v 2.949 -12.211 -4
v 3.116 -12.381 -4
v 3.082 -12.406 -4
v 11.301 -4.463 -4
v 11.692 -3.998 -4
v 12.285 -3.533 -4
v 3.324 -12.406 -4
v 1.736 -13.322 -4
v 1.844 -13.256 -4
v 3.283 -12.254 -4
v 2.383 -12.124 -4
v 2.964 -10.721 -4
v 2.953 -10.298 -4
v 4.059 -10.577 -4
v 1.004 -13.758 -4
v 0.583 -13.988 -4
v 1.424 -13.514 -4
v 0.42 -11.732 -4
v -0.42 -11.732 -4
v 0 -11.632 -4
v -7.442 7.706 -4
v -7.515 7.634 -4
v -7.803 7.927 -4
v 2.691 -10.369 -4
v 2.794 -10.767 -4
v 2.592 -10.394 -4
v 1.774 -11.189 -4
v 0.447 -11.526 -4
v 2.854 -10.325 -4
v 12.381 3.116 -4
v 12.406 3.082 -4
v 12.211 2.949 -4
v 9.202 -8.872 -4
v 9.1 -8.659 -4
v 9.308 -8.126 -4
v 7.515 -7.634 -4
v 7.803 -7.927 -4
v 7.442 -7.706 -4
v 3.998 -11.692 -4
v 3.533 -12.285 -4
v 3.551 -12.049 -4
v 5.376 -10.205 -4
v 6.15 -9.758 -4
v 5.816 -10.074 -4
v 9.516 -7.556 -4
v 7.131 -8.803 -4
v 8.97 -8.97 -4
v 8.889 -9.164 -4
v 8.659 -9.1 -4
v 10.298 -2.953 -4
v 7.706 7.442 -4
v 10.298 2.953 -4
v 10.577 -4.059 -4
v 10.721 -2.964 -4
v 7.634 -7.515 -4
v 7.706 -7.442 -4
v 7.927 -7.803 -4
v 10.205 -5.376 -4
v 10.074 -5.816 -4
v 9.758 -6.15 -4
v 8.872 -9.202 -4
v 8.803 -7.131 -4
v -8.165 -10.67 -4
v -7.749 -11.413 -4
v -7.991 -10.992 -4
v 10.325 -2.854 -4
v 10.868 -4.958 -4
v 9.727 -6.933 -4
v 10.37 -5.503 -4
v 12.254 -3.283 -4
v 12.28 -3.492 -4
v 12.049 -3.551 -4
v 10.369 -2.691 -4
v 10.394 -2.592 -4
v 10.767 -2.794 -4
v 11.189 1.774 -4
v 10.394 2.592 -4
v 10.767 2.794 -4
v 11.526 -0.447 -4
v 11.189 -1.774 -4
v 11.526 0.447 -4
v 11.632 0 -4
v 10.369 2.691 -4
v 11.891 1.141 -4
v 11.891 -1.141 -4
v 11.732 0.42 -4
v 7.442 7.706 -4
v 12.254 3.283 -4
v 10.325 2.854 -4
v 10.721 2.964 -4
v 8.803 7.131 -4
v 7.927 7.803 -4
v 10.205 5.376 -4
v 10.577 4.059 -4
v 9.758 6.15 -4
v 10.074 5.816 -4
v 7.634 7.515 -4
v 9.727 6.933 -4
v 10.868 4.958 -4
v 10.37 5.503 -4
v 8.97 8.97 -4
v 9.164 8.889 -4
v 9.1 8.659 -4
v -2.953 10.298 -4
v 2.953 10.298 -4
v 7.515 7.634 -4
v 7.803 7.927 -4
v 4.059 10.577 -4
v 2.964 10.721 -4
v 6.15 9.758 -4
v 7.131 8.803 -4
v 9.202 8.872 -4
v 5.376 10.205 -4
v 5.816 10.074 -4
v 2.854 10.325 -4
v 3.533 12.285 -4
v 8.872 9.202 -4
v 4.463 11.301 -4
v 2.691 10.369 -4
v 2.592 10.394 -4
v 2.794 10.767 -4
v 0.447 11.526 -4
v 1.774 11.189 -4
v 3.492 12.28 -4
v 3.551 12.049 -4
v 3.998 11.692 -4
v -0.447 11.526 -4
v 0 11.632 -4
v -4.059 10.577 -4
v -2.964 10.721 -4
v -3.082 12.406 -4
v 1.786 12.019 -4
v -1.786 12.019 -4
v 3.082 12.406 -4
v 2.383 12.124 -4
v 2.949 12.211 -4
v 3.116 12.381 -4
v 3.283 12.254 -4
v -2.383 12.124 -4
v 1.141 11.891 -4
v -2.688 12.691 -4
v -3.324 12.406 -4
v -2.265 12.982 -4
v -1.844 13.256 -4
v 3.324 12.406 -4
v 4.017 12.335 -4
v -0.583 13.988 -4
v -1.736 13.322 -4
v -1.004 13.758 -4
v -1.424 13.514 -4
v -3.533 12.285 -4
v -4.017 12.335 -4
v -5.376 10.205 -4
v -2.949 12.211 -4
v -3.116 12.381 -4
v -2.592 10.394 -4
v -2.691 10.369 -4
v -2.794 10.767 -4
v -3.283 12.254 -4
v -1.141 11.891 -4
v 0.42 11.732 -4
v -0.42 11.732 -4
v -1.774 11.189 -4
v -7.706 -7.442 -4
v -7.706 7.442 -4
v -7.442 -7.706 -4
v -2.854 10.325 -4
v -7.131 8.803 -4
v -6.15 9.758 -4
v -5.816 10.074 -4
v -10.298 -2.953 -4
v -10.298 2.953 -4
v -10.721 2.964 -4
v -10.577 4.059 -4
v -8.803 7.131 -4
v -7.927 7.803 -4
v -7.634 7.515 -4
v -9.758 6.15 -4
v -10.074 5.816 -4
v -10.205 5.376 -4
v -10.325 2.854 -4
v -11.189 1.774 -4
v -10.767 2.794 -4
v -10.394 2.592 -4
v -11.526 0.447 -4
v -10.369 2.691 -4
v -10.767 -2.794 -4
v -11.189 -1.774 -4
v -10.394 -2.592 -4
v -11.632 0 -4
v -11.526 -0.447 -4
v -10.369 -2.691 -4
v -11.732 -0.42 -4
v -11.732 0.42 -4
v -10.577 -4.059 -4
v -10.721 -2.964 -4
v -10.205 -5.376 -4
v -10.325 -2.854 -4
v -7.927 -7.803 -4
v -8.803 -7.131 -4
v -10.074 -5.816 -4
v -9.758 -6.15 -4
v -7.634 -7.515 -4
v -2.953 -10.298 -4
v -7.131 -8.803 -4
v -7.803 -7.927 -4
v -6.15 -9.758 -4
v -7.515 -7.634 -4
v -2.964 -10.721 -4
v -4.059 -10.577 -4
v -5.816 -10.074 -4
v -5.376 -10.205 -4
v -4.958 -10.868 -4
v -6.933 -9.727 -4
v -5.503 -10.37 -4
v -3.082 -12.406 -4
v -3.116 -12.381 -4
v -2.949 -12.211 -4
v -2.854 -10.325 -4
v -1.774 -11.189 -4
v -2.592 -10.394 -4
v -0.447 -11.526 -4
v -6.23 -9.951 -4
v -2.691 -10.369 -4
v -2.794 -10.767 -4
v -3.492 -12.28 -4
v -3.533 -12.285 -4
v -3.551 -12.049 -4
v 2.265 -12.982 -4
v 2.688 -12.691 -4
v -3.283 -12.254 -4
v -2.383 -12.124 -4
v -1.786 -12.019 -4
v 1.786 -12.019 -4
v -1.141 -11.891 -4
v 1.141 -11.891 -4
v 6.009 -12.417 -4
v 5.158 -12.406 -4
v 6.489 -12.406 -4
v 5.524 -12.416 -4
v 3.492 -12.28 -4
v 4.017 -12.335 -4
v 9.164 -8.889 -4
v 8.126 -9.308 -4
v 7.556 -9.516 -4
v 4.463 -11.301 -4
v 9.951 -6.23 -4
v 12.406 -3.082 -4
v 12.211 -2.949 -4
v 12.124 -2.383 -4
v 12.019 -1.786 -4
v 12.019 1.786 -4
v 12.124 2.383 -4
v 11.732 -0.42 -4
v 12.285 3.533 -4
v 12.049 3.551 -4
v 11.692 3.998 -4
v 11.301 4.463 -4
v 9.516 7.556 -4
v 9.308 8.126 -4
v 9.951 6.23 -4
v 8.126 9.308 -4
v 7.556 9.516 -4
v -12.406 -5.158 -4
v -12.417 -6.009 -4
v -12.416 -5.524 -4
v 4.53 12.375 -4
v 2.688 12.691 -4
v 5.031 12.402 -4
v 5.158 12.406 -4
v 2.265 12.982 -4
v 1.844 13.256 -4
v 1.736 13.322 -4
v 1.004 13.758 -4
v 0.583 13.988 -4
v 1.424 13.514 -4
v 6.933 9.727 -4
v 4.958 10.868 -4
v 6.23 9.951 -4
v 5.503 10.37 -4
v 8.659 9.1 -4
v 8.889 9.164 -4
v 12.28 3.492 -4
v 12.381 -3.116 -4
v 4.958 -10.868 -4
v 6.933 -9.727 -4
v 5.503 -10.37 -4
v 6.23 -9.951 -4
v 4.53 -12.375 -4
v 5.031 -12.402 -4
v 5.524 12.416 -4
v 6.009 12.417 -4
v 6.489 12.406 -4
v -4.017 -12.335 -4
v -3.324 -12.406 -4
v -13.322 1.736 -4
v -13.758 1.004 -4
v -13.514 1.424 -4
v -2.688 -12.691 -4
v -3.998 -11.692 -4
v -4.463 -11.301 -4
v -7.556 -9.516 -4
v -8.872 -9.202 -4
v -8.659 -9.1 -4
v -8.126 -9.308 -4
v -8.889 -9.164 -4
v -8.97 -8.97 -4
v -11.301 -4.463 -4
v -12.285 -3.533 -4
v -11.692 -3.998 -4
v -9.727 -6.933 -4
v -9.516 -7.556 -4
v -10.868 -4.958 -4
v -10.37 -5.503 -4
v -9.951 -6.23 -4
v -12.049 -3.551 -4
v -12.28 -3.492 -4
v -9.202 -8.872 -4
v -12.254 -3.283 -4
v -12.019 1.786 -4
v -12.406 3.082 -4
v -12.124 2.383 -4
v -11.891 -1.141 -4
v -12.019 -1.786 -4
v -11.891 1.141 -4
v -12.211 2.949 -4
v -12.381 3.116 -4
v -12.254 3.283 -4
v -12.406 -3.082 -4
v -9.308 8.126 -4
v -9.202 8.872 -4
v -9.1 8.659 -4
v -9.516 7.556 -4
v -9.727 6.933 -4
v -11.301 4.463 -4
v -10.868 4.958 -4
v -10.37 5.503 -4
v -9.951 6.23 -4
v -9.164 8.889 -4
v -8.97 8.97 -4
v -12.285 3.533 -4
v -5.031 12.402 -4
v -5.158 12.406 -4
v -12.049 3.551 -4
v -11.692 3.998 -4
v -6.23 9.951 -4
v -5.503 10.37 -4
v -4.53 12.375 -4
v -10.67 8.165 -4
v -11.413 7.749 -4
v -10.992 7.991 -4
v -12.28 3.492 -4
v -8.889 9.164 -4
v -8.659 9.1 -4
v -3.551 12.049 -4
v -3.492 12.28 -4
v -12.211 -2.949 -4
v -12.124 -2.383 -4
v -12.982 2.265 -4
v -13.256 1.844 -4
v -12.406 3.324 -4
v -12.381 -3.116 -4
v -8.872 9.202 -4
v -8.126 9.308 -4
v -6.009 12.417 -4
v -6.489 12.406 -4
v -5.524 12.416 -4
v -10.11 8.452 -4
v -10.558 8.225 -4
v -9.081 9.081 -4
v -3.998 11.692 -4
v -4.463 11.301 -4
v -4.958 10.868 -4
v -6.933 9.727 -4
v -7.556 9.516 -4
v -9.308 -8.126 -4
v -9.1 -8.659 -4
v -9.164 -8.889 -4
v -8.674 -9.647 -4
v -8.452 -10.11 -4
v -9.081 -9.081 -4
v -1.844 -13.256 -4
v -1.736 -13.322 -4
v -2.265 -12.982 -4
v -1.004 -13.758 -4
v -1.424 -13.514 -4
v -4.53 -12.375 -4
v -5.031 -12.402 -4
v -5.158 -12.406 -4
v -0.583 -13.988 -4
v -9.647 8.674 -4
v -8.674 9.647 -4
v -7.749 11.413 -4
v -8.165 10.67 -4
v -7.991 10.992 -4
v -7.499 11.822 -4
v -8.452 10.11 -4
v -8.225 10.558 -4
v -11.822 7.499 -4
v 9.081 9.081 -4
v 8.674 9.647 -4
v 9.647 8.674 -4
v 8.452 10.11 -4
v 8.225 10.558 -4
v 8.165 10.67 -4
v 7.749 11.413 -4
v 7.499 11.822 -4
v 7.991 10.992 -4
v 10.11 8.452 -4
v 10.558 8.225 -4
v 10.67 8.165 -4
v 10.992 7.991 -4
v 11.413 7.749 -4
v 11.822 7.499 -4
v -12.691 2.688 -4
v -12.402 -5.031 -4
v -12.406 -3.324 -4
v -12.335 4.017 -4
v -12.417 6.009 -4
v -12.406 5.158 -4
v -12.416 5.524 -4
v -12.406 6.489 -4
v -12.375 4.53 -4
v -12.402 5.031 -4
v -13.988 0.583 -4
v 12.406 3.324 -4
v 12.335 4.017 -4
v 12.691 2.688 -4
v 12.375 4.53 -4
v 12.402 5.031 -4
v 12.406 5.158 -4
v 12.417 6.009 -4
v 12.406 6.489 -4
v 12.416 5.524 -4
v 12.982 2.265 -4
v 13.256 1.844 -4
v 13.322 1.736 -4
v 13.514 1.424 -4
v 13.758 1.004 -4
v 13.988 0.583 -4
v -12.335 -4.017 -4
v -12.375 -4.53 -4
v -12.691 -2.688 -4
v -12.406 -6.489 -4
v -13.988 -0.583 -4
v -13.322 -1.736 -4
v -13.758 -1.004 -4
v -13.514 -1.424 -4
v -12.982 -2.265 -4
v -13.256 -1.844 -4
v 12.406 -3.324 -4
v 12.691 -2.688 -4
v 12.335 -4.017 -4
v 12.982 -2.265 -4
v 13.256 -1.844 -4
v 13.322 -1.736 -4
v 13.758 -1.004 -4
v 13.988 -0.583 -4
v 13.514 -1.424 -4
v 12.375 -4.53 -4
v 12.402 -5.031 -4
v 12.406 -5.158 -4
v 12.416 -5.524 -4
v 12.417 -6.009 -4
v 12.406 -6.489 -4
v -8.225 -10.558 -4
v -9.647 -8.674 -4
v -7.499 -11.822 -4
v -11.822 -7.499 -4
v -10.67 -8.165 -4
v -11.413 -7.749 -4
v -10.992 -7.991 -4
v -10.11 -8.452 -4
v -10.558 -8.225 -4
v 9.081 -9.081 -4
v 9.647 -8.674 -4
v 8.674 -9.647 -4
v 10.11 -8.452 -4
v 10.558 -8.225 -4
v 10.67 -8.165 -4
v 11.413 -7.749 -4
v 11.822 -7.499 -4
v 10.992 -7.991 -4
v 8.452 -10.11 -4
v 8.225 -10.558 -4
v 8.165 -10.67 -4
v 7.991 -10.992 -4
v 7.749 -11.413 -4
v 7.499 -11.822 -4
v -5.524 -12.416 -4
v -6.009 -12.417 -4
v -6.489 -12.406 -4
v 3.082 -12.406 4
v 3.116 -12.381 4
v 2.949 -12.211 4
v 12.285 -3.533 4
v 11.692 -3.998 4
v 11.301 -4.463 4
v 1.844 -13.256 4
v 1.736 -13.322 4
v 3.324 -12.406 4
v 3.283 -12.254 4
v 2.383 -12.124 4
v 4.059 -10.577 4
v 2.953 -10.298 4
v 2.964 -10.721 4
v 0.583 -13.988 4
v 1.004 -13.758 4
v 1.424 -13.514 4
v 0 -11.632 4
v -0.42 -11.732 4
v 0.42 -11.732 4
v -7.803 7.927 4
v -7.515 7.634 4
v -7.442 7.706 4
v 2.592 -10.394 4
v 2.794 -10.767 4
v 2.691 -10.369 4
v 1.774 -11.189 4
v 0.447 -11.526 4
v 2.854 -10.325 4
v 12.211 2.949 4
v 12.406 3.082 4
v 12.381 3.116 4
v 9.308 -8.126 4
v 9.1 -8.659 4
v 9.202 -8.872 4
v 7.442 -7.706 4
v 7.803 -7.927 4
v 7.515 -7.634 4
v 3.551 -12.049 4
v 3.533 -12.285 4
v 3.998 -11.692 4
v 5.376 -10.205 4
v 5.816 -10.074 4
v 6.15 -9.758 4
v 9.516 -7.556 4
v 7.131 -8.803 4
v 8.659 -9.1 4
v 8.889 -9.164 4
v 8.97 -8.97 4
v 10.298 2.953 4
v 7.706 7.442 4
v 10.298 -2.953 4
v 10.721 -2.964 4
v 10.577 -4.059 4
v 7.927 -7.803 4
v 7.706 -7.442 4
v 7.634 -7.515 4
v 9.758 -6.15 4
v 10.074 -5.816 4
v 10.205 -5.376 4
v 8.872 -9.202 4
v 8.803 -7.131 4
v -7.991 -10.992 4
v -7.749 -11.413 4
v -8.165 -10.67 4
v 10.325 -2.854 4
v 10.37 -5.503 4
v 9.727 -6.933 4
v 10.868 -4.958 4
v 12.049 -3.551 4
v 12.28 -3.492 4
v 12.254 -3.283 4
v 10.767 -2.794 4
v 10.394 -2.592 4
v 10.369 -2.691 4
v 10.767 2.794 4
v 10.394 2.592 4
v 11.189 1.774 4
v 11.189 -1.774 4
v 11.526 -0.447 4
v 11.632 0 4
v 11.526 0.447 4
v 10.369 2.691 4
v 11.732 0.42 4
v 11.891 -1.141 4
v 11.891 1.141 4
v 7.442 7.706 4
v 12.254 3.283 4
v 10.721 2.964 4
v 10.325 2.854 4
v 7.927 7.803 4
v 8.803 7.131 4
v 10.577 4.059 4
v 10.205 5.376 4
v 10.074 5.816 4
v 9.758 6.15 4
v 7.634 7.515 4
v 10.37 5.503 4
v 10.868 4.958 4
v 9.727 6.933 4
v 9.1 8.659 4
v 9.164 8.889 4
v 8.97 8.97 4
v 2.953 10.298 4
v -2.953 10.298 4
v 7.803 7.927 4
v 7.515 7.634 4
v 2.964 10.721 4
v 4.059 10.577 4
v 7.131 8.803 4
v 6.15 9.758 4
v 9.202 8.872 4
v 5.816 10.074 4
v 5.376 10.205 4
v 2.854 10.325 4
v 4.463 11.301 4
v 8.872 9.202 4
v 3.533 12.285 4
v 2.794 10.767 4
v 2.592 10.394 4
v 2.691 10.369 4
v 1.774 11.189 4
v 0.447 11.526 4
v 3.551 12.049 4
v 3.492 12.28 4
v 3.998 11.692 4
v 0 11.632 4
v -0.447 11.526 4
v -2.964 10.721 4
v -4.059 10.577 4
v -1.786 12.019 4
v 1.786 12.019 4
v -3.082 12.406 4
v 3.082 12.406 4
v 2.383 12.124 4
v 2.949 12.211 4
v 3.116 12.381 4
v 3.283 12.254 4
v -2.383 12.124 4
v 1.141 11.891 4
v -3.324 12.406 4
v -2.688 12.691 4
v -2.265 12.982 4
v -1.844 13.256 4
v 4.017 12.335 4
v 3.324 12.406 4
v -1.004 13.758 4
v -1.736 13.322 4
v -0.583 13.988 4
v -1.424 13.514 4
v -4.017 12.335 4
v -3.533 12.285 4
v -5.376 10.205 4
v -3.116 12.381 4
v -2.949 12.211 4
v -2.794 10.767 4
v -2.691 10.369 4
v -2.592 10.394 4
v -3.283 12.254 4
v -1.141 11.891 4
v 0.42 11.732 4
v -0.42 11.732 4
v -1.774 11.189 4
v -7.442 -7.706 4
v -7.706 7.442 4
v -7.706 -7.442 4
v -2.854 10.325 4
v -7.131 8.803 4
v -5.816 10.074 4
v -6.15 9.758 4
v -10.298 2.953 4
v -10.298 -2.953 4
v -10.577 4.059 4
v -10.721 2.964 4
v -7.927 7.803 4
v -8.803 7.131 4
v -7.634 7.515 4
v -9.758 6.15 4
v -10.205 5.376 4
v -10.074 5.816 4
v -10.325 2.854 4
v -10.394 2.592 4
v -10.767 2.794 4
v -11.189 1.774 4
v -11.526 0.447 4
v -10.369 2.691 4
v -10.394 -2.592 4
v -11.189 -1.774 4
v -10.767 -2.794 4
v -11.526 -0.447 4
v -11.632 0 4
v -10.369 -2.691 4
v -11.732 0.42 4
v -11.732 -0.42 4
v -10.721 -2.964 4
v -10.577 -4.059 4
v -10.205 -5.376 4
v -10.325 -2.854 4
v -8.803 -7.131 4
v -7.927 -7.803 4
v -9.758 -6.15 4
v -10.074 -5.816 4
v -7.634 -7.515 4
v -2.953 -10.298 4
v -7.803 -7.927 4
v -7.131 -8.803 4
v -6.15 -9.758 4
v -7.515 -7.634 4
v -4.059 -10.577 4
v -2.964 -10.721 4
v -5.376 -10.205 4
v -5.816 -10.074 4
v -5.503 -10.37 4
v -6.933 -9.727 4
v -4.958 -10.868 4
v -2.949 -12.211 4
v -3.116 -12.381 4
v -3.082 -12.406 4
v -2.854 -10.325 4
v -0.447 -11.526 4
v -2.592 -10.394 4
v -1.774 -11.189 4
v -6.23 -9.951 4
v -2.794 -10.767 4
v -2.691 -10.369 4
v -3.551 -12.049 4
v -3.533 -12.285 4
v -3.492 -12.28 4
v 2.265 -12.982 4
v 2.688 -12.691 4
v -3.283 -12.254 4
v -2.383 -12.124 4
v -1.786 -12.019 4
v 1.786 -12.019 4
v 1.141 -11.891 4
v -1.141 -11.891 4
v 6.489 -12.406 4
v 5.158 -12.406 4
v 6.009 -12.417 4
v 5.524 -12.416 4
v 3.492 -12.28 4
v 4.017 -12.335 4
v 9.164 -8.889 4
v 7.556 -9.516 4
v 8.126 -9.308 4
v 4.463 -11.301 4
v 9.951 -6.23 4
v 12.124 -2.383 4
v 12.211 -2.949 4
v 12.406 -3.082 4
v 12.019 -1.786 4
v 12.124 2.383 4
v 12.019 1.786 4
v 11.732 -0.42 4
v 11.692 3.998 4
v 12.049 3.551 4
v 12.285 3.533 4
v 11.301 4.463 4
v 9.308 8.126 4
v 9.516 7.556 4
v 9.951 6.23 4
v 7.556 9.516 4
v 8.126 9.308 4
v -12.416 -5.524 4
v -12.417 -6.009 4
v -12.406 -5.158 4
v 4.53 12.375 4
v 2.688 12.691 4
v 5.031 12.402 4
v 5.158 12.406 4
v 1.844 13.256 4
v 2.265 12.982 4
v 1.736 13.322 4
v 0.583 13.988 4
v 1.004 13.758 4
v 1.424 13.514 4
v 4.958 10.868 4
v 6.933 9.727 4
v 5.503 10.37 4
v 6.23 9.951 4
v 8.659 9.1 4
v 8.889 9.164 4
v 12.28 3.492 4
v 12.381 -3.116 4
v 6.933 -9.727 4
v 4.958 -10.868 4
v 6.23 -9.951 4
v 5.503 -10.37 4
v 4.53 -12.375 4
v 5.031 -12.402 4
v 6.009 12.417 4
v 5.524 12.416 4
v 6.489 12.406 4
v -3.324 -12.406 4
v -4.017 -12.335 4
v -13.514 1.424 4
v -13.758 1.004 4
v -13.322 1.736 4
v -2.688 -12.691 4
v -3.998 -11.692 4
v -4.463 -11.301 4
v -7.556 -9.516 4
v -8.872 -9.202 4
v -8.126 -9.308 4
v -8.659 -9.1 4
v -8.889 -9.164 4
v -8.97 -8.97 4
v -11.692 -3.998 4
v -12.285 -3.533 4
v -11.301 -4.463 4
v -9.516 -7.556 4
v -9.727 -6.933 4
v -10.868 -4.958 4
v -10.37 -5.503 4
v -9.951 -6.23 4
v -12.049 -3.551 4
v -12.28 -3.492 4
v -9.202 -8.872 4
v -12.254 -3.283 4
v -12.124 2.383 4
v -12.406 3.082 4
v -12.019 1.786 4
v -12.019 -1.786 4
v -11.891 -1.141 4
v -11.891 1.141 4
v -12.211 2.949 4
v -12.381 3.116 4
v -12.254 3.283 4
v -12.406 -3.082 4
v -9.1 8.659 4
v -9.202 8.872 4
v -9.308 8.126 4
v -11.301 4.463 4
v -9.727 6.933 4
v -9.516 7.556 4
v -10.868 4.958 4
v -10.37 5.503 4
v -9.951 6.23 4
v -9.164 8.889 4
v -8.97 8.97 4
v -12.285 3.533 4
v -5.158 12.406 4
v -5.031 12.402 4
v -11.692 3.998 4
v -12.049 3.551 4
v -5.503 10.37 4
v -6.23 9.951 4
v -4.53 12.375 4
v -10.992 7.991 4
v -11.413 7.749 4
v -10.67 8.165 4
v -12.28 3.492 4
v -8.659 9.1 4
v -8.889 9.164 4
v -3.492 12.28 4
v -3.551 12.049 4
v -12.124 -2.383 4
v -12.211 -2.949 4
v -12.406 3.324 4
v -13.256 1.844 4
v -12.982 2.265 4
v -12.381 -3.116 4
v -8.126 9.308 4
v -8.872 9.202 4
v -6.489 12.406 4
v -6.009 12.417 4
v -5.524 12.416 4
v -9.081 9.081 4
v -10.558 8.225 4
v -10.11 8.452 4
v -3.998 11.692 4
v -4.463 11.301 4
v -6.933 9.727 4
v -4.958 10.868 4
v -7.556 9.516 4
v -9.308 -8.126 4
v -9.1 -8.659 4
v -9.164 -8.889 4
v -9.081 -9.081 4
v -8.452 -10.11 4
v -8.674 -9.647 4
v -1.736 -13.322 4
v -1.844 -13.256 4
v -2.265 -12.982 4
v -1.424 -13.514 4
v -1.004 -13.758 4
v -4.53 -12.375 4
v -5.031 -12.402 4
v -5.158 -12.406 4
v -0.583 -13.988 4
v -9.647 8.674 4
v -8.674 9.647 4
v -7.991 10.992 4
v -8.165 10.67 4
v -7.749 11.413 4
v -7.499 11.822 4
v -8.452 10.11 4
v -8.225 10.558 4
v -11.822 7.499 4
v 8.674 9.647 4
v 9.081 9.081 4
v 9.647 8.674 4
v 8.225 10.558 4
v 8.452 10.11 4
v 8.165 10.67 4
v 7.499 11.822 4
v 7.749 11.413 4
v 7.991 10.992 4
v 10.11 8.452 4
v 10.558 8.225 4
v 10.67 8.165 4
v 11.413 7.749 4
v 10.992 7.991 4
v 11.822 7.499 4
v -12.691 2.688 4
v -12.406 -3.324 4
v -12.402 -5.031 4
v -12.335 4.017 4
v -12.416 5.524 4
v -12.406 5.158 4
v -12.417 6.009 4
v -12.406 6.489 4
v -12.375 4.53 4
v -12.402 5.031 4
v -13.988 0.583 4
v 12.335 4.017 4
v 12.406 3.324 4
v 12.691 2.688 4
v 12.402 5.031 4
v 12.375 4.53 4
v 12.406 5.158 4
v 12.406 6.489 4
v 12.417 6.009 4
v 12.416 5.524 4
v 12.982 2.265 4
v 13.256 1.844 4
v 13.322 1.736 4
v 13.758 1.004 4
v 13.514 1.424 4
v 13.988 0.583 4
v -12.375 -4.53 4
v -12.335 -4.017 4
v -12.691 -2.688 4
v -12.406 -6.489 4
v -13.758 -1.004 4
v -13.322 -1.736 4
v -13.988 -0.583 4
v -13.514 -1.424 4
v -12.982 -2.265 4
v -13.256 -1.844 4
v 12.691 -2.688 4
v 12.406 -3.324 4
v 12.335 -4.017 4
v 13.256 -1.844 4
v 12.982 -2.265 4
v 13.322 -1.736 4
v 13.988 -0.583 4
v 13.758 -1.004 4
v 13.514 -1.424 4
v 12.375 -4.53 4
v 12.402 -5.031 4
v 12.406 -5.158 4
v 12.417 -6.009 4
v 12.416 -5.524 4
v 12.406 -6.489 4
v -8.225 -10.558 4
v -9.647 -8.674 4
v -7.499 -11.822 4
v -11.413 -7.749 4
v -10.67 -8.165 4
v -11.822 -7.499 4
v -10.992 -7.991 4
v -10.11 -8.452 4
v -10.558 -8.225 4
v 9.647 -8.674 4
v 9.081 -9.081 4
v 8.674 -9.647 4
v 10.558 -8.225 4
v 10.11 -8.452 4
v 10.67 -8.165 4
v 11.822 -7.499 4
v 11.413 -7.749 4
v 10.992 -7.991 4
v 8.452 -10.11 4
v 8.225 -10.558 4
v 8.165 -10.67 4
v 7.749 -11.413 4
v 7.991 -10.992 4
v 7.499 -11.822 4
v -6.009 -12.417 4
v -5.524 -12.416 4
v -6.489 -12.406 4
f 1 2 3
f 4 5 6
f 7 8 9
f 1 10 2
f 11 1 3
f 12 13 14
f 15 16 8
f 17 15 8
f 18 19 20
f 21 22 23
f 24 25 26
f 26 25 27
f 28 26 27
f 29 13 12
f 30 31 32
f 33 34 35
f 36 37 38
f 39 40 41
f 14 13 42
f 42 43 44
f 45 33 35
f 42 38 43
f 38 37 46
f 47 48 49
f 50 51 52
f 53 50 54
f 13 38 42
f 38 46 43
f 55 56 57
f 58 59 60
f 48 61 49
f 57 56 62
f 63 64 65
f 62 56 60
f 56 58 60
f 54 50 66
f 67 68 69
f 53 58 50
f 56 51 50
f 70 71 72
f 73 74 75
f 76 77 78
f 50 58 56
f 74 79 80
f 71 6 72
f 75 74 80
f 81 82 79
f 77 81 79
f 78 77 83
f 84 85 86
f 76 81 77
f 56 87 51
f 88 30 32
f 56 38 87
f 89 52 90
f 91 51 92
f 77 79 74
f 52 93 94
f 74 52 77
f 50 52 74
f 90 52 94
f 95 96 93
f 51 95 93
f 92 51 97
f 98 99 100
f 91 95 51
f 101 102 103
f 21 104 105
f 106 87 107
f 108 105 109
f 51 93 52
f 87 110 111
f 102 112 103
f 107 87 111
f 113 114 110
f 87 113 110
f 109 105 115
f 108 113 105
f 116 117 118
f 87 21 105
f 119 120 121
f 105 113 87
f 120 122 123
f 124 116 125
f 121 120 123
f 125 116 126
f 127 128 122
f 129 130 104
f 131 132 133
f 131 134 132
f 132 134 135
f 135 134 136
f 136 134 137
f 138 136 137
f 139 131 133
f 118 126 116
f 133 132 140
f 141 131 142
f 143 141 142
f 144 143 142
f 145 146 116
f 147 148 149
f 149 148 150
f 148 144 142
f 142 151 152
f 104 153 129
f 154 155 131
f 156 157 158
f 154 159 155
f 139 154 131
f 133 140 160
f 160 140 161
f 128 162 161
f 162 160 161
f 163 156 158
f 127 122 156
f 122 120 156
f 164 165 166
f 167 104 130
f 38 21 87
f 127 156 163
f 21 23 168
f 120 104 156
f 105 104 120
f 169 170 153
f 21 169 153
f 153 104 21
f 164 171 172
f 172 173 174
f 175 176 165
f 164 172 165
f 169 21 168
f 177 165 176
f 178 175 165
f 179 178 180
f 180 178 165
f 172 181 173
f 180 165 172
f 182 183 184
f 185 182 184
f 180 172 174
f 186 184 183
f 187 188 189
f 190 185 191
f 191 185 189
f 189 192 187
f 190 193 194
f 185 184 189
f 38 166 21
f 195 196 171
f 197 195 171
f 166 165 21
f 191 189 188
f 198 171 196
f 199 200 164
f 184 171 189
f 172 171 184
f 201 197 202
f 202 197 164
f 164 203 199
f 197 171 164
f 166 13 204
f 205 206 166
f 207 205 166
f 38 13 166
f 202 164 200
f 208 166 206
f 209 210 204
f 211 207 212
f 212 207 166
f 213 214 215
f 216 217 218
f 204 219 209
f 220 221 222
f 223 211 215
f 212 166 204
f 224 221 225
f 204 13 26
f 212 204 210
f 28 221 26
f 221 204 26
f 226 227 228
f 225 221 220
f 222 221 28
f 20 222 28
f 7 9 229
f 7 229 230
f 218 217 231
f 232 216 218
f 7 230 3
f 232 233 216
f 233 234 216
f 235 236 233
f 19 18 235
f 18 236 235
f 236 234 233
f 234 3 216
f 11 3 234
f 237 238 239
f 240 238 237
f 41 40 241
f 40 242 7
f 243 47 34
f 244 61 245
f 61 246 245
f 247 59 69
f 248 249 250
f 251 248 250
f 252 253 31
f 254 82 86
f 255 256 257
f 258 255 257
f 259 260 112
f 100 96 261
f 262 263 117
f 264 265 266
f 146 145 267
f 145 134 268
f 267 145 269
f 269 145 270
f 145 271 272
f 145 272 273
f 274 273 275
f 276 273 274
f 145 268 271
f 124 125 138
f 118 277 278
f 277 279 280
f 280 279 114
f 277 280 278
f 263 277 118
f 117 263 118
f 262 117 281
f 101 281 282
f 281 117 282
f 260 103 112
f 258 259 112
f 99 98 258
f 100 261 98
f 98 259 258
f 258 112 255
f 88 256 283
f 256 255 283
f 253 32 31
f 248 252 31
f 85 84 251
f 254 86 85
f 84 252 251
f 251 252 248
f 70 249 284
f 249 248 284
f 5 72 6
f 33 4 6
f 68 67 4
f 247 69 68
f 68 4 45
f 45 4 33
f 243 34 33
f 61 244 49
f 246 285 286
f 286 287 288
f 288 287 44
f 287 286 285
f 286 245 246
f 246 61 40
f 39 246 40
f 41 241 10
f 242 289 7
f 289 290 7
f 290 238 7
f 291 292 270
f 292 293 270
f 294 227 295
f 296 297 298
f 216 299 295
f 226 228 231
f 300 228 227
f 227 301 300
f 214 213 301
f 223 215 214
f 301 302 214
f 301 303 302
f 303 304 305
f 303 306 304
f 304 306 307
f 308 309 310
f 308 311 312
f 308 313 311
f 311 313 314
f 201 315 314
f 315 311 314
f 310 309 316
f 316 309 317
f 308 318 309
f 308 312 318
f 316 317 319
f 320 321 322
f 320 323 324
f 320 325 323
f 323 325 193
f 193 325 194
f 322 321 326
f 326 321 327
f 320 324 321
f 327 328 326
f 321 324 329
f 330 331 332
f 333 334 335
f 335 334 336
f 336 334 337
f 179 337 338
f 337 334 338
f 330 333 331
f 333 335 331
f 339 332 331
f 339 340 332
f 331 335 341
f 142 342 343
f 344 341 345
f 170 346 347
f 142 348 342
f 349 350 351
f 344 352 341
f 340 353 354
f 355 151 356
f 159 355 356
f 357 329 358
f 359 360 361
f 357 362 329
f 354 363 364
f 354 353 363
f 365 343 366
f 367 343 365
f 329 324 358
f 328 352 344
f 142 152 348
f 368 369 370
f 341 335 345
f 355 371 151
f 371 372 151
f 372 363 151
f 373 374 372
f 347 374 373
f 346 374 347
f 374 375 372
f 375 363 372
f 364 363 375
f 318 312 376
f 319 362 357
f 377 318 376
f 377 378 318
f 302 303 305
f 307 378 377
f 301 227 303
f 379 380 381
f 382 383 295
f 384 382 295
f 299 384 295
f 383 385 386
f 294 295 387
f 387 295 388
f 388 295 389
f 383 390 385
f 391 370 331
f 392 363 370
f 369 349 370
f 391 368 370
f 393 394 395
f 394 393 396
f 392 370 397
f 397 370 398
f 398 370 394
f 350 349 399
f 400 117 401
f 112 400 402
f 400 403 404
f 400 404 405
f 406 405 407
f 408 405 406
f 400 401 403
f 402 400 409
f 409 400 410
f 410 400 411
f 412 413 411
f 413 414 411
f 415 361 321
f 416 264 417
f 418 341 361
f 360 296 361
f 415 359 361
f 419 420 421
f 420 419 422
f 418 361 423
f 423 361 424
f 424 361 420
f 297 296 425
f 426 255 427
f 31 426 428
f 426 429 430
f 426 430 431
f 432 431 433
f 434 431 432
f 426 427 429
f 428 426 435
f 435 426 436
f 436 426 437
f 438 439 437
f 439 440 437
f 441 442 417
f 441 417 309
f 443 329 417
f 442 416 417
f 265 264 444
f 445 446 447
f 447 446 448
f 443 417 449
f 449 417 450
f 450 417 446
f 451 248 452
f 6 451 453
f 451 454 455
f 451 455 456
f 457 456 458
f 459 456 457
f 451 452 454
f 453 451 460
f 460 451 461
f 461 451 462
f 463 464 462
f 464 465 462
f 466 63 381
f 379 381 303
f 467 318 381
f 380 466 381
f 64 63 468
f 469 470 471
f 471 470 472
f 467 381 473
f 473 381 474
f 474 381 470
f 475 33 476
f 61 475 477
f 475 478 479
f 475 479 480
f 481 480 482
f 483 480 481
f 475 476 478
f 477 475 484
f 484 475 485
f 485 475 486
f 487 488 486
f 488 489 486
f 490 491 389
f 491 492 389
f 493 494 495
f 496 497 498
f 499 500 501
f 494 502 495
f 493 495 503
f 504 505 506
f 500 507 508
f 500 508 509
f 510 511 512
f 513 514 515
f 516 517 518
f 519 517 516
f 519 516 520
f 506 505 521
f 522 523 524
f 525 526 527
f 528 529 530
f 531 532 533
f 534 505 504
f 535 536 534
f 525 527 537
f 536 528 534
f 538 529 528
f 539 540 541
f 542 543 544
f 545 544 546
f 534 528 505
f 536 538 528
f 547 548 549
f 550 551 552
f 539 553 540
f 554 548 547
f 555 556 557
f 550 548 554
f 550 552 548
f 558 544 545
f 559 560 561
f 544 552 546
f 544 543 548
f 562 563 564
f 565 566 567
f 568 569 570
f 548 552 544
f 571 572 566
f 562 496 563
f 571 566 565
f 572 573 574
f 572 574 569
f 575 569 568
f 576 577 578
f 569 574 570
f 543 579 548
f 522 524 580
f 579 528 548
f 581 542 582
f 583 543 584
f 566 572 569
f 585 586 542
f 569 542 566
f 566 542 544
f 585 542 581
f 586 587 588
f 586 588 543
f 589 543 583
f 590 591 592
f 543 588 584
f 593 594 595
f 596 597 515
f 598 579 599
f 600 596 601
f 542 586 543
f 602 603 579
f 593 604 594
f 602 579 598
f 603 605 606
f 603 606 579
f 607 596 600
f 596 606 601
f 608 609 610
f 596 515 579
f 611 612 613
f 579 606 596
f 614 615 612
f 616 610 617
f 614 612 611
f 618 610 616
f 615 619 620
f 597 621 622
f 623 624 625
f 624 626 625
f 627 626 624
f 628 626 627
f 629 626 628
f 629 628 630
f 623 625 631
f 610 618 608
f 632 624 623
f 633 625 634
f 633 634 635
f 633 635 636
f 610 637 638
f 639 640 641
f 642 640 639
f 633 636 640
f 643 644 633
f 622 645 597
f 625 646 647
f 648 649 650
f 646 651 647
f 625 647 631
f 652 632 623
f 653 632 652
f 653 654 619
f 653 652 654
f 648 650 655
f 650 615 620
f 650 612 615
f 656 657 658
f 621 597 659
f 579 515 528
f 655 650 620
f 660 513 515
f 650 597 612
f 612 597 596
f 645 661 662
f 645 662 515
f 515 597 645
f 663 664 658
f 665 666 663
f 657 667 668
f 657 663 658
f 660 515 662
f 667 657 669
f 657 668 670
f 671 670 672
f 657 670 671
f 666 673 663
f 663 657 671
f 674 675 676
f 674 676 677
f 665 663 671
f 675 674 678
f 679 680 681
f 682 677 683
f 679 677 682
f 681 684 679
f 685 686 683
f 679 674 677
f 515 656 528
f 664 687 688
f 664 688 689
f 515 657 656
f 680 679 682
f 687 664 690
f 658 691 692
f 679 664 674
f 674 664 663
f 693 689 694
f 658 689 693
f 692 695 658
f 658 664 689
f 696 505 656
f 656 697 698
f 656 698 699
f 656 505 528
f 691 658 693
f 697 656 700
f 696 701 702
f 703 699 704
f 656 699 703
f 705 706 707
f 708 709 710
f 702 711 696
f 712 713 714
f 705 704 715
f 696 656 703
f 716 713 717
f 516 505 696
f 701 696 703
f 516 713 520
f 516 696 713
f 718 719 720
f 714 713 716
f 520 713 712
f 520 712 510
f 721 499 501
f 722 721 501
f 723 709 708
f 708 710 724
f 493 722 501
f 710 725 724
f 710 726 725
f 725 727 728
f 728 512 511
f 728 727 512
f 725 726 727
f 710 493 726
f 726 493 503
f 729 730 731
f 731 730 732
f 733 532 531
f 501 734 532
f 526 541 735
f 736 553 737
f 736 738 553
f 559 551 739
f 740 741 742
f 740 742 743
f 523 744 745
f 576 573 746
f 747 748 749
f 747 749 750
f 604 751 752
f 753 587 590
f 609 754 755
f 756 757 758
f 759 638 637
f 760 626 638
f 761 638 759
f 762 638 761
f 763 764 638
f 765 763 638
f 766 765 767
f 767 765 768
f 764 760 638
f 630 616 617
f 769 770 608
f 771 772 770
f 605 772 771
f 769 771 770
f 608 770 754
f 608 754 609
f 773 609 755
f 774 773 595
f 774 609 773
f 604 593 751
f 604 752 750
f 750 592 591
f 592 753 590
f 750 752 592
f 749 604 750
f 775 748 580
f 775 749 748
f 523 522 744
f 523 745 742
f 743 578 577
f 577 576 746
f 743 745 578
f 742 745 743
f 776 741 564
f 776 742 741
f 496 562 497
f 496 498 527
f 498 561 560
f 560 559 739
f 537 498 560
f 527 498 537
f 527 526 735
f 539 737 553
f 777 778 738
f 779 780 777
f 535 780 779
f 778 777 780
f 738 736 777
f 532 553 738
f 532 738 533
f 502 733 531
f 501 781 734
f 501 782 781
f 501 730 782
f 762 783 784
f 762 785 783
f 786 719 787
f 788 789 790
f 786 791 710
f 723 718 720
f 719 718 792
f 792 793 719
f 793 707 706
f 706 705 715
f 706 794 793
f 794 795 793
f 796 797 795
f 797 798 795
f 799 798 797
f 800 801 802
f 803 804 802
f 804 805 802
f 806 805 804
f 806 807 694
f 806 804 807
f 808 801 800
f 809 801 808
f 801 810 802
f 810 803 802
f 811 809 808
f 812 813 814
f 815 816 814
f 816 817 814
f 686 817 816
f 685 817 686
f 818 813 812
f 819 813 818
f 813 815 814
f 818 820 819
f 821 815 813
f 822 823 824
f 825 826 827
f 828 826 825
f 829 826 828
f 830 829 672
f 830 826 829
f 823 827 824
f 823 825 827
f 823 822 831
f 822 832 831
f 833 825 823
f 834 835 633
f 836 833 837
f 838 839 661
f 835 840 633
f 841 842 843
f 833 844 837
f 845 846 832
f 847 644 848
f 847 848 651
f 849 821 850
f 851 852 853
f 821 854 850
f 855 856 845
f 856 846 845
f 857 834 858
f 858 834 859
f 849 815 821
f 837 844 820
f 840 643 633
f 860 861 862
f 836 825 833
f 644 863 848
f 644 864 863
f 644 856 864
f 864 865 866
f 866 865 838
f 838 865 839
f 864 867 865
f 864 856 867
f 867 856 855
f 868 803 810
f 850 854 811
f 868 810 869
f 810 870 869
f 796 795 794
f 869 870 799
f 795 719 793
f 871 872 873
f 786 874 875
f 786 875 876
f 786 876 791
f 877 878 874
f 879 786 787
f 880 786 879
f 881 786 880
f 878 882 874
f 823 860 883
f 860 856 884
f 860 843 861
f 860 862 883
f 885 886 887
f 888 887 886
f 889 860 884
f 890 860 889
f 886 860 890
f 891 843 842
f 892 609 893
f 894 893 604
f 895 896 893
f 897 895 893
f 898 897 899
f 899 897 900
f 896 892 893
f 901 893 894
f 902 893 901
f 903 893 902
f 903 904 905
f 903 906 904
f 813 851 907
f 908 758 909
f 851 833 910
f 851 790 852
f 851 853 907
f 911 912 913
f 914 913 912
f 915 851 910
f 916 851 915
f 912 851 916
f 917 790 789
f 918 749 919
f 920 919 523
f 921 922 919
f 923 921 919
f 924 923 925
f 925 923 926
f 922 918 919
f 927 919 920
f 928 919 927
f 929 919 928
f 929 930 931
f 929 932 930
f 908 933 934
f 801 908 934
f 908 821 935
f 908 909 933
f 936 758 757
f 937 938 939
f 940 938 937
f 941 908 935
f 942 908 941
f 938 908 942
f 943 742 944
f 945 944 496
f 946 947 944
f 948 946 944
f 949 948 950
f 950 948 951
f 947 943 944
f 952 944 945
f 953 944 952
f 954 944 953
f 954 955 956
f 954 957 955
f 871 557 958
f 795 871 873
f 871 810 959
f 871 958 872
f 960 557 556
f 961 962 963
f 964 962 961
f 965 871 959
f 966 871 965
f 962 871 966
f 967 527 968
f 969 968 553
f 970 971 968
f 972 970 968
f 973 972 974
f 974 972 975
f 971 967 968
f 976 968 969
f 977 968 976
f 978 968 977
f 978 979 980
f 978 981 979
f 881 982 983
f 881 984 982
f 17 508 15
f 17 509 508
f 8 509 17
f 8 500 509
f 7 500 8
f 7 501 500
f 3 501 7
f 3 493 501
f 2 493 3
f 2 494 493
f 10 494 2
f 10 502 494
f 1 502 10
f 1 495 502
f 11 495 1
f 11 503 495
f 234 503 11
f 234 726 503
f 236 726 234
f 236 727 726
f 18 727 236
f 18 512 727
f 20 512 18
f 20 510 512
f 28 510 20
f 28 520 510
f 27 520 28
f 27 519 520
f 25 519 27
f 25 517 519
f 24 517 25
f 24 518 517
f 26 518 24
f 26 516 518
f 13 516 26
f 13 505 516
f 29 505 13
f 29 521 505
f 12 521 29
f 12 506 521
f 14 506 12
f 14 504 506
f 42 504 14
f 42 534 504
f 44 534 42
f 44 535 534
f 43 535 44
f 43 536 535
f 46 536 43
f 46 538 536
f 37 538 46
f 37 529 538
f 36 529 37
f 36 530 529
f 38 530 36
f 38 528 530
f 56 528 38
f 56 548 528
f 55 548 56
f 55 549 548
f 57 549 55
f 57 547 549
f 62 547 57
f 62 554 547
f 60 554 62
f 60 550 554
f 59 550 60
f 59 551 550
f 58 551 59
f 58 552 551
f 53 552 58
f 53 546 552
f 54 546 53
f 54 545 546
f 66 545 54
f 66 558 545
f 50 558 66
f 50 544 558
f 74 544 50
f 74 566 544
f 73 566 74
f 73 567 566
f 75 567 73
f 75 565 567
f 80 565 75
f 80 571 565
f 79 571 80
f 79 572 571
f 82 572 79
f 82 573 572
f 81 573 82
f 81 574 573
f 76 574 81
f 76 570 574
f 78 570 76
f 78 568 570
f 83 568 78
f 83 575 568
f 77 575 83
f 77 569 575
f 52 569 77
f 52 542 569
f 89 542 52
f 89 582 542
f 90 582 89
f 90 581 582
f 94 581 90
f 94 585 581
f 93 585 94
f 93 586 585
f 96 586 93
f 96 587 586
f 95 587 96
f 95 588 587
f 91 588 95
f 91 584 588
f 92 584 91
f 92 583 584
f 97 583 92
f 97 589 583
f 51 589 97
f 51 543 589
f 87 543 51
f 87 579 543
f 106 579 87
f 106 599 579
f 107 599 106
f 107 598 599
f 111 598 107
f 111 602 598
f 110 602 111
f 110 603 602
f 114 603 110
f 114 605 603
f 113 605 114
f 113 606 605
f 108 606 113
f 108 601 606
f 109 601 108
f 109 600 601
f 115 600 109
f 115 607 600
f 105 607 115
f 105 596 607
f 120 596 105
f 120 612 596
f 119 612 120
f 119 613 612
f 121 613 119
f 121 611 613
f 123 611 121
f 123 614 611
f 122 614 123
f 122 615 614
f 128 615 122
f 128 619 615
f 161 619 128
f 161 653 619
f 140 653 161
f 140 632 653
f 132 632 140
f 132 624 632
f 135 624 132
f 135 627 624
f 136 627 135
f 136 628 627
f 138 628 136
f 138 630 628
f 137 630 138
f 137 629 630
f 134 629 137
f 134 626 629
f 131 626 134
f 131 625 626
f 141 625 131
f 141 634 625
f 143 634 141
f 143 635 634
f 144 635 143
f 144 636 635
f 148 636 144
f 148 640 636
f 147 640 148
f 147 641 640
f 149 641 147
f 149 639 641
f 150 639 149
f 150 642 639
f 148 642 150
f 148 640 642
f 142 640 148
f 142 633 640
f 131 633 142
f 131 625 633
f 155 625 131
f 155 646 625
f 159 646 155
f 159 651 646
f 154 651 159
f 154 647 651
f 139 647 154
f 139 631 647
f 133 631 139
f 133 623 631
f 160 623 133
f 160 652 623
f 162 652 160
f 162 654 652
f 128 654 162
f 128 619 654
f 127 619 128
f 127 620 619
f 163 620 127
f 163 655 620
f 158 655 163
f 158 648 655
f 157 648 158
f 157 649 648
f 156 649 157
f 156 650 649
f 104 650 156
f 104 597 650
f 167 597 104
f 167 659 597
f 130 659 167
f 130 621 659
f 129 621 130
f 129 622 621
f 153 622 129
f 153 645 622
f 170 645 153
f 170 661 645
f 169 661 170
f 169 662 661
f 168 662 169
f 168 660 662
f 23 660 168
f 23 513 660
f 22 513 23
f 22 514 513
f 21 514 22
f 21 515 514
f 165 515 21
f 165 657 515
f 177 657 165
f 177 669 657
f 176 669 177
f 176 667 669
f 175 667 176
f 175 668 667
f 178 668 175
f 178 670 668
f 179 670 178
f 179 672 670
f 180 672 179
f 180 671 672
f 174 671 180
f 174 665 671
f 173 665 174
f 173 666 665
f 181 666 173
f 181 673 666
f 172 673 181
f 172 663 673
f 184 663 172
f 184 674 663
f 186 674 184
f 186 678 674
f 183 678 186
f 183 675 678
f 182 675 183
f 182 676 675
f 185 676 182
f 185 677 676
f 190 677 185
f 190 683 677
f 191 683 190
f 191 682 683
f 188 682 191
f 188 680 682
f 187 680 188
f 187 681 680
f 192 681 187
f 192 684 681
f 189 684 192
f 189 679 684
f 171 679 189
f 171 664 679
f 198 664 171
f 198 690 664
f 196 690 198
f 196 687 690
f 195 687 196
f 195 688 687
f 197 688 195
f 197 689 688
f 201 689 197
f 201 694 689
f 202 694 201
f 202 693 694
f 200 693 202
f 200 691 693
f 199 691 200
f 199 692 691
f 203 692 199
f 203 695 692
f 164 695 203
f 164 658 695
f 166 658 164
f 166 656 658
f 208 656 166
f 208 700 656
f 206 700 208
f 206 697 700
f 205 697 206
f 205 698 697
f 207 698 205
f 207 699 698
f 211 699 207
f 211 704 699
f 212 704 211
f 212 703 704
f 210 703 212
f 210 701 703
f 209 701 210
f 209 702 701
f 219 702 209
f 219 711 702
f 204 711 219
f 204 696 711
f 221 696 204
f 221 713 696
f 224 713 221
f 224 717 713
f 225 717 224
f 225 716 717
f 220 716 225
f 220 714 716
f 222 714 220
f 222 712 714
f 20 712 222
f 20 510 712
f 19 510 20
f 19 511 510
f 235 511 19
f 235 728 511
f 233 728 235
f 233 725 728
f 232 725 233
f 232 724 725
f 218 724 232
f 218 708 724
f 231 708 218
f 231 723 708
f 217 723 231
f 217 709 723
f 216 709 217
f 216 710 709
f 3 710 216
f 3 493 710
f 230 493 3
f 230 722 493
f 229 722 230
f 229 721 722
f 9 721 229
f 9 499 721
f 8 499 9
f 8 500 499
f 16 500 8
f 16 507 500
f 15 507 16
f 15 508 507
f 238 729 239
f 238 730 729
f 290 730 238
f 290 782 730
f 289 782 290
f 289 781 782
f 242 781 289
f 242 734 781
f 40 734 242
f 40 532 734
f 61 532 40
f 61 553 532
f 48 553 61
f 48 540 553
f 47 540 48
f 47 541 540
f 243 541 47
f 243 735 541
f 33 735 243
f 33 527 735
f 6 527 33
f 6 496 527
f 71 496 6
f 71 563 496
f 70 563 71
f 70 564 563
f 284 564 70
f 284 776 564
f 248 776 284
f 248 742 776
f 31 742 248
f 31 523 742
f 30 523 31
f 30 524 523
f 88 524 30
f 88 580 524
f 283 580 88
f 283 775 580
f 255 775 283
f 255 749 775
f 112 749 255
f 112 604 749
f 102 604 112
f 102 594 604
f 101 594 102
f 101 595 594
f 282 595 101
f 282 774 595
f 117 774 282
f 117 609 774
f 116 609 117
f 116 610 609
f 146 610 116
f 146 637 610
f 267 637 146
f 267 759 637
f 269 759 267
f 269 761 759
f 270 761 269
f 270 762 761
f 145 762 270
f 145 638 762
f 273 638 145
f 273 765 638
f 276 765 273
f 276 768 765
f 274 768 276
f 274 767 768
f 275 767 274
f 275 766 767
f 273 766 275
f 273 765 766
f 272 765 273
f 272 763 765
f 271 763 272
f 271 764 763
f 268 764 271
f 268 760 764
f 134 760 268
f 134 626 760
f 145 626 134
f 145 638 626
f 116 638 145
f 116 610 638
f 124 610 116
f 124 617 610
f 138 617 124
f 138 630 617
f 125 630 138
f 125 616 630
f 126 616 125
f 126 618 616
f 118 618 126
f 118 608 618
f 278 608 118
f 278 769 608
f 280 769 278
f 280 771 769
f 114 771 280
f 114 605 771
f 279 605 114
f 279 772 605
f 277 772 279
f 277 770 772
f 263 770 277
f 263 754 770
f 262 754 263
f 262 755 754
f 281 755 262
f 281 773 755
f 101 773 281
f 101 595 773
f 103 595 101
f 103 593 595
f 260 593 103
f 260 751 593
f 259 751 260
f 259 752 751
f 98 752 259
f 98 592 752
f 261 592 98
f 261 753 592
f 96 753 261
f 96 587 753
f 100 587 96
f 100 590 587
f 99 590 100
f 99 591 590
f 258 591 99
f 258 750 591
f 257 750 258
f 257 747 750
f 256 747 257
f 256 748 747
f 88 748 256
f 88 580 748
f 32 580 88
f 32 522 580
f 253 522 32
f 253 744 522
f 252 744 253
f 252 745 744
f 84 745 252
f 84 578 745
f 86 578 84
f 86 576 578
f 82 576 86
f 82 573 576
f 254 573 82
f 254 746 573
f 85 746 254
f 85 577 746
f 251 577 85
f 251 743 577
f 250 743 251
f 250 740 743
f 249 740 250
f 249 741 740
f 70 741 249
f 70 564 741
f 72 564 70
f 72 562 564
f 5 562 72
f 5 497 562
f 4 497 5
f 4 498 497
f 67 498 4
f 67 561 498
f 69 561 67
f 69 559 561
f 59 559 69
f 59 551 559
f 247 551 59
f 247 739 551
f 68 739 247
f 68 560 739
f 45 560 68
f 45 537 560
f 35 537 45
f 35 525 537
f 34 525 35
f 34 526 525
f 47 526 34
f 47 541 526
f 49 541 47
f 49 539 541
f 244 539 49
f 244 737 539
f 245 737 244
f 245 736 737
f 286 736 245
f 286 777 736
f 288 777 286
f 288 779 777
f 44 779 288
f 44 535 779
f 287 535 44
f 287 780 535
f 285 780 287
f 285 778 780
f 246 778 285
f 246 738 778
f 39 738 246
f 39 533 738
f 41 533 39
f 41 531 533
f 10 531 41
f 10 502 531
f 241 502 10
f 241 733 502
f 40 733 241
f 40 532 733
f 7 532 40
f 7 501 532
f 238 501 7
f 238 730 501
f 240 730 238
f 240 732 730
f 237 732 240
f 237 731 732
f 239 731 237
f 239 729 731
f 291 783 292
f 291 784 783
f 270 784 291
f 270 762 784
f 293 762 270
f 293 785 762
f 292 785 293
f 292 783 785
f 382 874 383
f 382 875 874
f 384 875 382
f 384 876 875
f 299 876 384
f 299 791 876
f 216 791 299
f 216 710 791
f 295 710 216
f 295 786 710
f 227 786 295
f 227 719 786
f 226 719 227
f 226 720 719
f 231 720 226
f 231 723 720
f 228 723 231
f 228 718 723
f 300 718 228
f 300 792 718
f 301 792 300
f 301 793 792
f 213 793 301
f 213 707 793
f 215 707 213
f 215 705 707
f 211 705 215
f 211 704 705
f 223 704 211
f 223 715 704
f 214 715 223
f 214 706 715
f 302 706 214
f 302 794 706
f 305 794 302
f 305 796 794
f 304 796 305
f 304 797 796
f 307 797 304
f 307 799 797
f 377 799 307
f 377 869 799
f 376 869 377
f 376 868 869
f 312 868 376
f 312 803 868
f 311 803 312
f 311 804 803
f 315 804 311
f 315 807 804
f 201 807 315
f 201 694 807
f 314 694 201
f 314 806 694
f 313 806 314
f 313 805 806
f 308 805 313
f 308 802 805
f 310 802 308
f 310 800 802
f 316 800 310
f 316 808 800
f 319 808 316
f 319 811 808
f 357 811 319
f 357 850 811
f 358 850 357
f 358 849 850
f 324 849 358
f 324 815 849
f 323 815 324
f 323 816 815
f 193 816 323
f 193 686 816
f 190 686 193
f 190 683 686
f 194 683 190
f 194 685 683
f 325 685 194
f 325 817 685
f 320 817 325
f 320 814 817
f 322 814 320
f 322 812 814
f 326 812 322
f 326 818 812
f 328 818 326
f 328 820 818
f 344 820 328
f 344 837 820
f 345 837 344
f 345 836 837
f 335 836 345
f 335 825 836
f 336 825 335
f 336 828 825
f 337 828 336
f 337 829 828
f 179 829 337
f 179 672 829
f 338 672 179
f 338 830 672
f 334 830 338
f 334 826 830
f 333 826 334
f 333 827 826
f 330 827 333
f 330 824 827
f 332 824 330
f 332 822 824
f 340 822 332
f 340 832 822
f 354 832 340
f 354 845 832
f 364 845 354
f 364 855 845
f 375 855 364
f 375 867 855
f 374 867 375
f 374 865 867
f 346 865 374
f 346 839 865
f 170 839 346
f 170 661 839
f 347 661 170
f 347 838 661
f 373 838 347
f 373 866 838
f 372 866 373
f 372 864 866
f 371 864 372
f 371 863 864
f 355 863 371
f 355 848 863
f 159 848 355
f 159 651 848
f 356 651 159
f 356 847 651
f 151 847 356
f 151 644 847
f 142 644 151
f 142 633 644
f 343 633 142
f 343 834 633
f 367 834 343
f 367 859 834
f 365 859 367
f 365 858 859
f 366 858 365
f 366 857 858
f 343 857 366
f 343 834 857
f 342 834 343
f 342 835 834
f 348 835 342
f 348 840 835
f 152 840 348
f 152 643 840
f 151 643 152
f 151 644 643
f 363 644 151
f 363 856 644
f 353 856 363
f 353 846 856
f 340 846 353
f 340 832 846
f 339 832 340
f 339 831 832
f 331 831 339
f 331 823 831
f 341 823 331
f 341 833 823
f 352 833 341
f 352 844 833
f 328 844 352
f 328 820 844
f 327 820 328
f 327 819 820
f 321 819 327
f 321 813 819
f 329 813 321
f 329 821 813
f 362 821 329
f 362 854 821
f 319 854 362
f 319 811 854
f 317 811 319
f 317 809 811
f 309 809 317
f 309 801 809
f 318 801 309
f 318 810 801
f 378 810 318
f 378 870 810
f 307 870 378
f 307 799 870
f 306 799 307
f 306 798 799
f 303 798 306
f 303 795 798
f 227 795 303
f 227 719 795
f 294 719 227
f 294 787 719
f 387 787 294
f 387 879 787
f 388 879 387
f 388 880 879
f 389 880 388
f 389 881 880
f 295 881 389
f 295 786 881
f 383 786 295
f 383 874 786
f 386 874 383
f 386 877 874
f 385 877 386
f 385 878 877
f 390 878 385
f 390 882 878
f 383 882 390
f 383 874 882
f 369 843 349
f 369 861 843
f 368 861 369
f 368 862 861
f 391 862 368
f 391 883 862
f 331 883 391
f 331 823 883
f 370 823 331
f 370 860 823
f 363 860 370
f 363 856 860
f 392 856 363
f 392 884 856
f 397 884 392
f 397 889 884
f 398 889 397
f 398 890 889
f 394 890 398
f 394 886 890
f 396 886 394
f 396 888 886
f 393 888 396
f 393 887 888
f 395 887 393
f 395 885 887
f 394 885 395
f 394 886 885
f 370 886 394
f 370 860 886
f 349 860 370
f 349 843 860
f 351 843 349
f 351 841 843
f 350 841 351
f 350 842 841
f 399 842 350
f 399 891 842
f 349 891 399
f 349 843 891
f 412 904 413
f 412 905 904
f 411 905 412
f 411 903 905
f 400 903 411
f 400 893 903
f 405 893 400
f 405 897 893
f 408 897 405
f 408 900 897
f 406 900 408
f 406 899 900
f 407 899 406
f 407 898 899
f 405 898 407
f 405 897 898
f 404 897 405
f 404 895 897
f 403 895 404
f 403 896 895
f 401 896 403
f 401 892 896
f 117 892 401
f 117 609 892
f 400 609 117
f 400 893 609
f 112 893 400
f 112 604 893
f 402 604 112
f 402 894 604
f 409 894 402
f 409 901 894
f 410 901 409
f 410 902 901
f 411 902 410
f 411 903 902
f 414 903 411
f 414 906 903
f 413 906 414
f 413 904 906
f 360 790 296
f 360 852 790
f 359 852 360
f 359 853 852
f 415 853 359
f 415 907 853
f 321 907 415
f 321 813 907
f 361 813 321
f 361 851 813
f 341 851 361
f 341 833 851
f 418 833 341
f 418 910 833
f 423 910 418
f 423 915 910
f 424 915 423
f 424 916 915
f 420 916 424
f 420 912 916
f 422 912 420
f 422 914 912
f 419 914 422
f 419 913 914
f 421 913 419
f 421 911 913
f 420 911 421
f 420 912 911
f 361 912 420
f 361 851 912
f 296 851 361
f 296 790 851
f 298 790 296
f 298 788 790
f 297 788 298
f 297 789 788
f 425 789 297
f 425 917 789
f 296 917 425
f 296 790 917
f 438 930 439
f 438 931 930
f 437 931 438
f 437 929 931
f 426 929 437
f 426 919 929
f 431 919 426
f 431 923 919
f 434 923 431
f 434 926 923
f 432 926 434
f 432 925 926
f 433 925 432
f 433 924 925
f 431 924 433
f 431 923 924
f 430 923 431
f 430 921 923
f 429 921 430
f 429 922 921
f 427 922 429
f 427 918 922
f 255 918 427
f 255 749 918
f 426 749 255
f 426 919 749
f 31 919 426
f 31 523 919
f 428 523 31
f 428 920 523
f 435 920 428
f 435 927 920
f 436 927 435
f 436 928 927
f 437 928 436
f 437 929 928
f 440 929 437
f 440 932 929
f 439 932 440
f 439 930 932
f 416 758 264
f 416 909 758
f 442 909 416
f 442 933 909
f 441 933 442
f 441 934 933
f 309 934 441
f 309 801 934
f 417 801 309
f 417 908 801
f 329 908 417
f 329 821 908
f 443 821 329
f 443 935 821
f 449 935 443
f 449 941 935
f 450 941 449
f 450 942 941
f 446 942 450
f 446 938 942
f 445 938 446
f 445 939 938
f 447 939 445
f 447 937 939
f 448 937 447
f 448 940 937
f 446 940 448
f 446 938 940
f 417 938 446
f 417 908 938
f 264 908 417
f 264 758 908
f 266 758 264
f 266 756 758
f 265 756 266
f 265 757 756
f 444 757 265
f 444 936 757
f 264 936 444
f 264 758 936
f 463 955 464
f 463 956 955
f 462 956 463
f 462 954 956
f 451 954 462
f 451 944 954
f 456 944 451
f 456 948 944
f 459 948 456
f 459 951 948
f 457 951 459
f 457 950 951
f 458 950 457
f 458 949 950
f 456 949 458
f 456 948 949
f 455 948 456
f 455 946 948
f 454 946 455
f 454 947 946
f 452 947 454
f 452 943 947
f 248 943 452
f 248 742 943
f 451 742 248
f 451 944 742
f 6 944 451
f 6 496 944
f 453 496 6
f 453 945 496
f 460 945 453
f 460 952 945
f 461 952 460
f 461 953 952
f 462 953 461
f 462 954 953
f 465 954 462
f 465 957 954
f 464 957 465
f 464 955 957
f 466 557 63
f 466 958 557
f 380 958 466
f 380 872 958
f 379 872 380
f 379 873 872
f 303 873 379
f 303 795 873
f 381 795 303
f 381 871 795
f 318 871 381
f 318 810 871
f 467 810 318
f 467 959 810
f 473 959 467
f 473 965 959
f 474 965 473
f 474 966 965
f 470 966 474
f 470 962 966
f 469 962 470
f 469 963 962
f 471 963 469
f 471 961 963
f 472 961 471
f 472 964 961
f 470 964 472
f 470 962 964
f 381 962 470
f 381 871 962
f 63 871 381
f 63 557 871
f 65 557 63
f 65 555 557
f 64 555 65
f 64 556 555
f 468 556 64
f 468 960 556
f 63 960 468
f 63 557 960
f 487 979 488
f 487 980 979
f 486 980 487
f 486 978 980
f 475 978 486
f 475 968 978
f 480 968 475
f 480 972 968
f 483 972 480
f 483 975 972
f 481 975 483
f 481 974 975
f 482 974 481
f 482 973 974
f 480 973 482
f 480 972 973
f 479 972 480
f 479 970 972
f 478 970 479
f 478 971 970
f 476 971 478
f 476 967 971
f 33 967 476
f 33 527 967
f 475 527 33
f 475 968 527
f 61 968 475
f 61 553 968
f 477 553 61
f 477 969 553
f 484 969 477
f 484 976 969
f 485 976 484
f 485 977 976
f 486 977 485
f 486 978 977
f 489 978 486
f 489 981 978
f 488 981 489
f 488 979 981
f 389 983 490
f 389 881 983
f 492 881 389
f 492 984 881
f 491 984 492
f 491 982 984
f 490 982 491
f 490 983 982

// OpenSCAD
pi = 3.14159265359;
function inv_angle(br, r) = (r <= br) ? 0 : sqrt(r*r - br*br)/br * 180/pi;

module ext_gear_2d(n, m, pa, bl) {
    pr  = m*n/2;
    br  = pr*cos(pa);
    ar  = pr + m;
    dr  = pr - 1.25*m;
    rr  = max(dr, br*0.95);
    alpha_p = inv_angle(br, pr);
    half_t  = 90/n - bl/(2*pr)*180/pi;
    ta      = 360/n;
    steps   = 16;

    pts = [for (ti = [0:n-1])
        let(base_ang = ti * ta)
        each concat(
            [[rr*cos(base_ang - ta/2 + 1), rr*sin(base_ang - ta/2 + 1)]],
            [for (s = [0:steps])
                let(r = rr + (ar - rr)*s/steps,
                    ia = inv_angle(br, r),
                    ang = base_ang + ia - alpha_p + half_t)
                [r*cos(ang), r*sin(ang)]
            ],
            [for (s = [0:steps])
                let(r = ar - (ar - rr)*s/steps,
                    ia = inv_angle(br, r),
                    ang = base_ang - (ia - alpha_p + half_t))
                [r*cos(ang), r*sin(ang)]
            ],
            [[rr*cos(base_ang + ta/2 - 1), rr*sin(base_ang + ta/2 - 1)]]
        )
    ];

    polygon(pts);
}

linear_extrude(height=8, center=true, convexity=10)
    ext_gear_2d(12, 2, 20, 0.5);
